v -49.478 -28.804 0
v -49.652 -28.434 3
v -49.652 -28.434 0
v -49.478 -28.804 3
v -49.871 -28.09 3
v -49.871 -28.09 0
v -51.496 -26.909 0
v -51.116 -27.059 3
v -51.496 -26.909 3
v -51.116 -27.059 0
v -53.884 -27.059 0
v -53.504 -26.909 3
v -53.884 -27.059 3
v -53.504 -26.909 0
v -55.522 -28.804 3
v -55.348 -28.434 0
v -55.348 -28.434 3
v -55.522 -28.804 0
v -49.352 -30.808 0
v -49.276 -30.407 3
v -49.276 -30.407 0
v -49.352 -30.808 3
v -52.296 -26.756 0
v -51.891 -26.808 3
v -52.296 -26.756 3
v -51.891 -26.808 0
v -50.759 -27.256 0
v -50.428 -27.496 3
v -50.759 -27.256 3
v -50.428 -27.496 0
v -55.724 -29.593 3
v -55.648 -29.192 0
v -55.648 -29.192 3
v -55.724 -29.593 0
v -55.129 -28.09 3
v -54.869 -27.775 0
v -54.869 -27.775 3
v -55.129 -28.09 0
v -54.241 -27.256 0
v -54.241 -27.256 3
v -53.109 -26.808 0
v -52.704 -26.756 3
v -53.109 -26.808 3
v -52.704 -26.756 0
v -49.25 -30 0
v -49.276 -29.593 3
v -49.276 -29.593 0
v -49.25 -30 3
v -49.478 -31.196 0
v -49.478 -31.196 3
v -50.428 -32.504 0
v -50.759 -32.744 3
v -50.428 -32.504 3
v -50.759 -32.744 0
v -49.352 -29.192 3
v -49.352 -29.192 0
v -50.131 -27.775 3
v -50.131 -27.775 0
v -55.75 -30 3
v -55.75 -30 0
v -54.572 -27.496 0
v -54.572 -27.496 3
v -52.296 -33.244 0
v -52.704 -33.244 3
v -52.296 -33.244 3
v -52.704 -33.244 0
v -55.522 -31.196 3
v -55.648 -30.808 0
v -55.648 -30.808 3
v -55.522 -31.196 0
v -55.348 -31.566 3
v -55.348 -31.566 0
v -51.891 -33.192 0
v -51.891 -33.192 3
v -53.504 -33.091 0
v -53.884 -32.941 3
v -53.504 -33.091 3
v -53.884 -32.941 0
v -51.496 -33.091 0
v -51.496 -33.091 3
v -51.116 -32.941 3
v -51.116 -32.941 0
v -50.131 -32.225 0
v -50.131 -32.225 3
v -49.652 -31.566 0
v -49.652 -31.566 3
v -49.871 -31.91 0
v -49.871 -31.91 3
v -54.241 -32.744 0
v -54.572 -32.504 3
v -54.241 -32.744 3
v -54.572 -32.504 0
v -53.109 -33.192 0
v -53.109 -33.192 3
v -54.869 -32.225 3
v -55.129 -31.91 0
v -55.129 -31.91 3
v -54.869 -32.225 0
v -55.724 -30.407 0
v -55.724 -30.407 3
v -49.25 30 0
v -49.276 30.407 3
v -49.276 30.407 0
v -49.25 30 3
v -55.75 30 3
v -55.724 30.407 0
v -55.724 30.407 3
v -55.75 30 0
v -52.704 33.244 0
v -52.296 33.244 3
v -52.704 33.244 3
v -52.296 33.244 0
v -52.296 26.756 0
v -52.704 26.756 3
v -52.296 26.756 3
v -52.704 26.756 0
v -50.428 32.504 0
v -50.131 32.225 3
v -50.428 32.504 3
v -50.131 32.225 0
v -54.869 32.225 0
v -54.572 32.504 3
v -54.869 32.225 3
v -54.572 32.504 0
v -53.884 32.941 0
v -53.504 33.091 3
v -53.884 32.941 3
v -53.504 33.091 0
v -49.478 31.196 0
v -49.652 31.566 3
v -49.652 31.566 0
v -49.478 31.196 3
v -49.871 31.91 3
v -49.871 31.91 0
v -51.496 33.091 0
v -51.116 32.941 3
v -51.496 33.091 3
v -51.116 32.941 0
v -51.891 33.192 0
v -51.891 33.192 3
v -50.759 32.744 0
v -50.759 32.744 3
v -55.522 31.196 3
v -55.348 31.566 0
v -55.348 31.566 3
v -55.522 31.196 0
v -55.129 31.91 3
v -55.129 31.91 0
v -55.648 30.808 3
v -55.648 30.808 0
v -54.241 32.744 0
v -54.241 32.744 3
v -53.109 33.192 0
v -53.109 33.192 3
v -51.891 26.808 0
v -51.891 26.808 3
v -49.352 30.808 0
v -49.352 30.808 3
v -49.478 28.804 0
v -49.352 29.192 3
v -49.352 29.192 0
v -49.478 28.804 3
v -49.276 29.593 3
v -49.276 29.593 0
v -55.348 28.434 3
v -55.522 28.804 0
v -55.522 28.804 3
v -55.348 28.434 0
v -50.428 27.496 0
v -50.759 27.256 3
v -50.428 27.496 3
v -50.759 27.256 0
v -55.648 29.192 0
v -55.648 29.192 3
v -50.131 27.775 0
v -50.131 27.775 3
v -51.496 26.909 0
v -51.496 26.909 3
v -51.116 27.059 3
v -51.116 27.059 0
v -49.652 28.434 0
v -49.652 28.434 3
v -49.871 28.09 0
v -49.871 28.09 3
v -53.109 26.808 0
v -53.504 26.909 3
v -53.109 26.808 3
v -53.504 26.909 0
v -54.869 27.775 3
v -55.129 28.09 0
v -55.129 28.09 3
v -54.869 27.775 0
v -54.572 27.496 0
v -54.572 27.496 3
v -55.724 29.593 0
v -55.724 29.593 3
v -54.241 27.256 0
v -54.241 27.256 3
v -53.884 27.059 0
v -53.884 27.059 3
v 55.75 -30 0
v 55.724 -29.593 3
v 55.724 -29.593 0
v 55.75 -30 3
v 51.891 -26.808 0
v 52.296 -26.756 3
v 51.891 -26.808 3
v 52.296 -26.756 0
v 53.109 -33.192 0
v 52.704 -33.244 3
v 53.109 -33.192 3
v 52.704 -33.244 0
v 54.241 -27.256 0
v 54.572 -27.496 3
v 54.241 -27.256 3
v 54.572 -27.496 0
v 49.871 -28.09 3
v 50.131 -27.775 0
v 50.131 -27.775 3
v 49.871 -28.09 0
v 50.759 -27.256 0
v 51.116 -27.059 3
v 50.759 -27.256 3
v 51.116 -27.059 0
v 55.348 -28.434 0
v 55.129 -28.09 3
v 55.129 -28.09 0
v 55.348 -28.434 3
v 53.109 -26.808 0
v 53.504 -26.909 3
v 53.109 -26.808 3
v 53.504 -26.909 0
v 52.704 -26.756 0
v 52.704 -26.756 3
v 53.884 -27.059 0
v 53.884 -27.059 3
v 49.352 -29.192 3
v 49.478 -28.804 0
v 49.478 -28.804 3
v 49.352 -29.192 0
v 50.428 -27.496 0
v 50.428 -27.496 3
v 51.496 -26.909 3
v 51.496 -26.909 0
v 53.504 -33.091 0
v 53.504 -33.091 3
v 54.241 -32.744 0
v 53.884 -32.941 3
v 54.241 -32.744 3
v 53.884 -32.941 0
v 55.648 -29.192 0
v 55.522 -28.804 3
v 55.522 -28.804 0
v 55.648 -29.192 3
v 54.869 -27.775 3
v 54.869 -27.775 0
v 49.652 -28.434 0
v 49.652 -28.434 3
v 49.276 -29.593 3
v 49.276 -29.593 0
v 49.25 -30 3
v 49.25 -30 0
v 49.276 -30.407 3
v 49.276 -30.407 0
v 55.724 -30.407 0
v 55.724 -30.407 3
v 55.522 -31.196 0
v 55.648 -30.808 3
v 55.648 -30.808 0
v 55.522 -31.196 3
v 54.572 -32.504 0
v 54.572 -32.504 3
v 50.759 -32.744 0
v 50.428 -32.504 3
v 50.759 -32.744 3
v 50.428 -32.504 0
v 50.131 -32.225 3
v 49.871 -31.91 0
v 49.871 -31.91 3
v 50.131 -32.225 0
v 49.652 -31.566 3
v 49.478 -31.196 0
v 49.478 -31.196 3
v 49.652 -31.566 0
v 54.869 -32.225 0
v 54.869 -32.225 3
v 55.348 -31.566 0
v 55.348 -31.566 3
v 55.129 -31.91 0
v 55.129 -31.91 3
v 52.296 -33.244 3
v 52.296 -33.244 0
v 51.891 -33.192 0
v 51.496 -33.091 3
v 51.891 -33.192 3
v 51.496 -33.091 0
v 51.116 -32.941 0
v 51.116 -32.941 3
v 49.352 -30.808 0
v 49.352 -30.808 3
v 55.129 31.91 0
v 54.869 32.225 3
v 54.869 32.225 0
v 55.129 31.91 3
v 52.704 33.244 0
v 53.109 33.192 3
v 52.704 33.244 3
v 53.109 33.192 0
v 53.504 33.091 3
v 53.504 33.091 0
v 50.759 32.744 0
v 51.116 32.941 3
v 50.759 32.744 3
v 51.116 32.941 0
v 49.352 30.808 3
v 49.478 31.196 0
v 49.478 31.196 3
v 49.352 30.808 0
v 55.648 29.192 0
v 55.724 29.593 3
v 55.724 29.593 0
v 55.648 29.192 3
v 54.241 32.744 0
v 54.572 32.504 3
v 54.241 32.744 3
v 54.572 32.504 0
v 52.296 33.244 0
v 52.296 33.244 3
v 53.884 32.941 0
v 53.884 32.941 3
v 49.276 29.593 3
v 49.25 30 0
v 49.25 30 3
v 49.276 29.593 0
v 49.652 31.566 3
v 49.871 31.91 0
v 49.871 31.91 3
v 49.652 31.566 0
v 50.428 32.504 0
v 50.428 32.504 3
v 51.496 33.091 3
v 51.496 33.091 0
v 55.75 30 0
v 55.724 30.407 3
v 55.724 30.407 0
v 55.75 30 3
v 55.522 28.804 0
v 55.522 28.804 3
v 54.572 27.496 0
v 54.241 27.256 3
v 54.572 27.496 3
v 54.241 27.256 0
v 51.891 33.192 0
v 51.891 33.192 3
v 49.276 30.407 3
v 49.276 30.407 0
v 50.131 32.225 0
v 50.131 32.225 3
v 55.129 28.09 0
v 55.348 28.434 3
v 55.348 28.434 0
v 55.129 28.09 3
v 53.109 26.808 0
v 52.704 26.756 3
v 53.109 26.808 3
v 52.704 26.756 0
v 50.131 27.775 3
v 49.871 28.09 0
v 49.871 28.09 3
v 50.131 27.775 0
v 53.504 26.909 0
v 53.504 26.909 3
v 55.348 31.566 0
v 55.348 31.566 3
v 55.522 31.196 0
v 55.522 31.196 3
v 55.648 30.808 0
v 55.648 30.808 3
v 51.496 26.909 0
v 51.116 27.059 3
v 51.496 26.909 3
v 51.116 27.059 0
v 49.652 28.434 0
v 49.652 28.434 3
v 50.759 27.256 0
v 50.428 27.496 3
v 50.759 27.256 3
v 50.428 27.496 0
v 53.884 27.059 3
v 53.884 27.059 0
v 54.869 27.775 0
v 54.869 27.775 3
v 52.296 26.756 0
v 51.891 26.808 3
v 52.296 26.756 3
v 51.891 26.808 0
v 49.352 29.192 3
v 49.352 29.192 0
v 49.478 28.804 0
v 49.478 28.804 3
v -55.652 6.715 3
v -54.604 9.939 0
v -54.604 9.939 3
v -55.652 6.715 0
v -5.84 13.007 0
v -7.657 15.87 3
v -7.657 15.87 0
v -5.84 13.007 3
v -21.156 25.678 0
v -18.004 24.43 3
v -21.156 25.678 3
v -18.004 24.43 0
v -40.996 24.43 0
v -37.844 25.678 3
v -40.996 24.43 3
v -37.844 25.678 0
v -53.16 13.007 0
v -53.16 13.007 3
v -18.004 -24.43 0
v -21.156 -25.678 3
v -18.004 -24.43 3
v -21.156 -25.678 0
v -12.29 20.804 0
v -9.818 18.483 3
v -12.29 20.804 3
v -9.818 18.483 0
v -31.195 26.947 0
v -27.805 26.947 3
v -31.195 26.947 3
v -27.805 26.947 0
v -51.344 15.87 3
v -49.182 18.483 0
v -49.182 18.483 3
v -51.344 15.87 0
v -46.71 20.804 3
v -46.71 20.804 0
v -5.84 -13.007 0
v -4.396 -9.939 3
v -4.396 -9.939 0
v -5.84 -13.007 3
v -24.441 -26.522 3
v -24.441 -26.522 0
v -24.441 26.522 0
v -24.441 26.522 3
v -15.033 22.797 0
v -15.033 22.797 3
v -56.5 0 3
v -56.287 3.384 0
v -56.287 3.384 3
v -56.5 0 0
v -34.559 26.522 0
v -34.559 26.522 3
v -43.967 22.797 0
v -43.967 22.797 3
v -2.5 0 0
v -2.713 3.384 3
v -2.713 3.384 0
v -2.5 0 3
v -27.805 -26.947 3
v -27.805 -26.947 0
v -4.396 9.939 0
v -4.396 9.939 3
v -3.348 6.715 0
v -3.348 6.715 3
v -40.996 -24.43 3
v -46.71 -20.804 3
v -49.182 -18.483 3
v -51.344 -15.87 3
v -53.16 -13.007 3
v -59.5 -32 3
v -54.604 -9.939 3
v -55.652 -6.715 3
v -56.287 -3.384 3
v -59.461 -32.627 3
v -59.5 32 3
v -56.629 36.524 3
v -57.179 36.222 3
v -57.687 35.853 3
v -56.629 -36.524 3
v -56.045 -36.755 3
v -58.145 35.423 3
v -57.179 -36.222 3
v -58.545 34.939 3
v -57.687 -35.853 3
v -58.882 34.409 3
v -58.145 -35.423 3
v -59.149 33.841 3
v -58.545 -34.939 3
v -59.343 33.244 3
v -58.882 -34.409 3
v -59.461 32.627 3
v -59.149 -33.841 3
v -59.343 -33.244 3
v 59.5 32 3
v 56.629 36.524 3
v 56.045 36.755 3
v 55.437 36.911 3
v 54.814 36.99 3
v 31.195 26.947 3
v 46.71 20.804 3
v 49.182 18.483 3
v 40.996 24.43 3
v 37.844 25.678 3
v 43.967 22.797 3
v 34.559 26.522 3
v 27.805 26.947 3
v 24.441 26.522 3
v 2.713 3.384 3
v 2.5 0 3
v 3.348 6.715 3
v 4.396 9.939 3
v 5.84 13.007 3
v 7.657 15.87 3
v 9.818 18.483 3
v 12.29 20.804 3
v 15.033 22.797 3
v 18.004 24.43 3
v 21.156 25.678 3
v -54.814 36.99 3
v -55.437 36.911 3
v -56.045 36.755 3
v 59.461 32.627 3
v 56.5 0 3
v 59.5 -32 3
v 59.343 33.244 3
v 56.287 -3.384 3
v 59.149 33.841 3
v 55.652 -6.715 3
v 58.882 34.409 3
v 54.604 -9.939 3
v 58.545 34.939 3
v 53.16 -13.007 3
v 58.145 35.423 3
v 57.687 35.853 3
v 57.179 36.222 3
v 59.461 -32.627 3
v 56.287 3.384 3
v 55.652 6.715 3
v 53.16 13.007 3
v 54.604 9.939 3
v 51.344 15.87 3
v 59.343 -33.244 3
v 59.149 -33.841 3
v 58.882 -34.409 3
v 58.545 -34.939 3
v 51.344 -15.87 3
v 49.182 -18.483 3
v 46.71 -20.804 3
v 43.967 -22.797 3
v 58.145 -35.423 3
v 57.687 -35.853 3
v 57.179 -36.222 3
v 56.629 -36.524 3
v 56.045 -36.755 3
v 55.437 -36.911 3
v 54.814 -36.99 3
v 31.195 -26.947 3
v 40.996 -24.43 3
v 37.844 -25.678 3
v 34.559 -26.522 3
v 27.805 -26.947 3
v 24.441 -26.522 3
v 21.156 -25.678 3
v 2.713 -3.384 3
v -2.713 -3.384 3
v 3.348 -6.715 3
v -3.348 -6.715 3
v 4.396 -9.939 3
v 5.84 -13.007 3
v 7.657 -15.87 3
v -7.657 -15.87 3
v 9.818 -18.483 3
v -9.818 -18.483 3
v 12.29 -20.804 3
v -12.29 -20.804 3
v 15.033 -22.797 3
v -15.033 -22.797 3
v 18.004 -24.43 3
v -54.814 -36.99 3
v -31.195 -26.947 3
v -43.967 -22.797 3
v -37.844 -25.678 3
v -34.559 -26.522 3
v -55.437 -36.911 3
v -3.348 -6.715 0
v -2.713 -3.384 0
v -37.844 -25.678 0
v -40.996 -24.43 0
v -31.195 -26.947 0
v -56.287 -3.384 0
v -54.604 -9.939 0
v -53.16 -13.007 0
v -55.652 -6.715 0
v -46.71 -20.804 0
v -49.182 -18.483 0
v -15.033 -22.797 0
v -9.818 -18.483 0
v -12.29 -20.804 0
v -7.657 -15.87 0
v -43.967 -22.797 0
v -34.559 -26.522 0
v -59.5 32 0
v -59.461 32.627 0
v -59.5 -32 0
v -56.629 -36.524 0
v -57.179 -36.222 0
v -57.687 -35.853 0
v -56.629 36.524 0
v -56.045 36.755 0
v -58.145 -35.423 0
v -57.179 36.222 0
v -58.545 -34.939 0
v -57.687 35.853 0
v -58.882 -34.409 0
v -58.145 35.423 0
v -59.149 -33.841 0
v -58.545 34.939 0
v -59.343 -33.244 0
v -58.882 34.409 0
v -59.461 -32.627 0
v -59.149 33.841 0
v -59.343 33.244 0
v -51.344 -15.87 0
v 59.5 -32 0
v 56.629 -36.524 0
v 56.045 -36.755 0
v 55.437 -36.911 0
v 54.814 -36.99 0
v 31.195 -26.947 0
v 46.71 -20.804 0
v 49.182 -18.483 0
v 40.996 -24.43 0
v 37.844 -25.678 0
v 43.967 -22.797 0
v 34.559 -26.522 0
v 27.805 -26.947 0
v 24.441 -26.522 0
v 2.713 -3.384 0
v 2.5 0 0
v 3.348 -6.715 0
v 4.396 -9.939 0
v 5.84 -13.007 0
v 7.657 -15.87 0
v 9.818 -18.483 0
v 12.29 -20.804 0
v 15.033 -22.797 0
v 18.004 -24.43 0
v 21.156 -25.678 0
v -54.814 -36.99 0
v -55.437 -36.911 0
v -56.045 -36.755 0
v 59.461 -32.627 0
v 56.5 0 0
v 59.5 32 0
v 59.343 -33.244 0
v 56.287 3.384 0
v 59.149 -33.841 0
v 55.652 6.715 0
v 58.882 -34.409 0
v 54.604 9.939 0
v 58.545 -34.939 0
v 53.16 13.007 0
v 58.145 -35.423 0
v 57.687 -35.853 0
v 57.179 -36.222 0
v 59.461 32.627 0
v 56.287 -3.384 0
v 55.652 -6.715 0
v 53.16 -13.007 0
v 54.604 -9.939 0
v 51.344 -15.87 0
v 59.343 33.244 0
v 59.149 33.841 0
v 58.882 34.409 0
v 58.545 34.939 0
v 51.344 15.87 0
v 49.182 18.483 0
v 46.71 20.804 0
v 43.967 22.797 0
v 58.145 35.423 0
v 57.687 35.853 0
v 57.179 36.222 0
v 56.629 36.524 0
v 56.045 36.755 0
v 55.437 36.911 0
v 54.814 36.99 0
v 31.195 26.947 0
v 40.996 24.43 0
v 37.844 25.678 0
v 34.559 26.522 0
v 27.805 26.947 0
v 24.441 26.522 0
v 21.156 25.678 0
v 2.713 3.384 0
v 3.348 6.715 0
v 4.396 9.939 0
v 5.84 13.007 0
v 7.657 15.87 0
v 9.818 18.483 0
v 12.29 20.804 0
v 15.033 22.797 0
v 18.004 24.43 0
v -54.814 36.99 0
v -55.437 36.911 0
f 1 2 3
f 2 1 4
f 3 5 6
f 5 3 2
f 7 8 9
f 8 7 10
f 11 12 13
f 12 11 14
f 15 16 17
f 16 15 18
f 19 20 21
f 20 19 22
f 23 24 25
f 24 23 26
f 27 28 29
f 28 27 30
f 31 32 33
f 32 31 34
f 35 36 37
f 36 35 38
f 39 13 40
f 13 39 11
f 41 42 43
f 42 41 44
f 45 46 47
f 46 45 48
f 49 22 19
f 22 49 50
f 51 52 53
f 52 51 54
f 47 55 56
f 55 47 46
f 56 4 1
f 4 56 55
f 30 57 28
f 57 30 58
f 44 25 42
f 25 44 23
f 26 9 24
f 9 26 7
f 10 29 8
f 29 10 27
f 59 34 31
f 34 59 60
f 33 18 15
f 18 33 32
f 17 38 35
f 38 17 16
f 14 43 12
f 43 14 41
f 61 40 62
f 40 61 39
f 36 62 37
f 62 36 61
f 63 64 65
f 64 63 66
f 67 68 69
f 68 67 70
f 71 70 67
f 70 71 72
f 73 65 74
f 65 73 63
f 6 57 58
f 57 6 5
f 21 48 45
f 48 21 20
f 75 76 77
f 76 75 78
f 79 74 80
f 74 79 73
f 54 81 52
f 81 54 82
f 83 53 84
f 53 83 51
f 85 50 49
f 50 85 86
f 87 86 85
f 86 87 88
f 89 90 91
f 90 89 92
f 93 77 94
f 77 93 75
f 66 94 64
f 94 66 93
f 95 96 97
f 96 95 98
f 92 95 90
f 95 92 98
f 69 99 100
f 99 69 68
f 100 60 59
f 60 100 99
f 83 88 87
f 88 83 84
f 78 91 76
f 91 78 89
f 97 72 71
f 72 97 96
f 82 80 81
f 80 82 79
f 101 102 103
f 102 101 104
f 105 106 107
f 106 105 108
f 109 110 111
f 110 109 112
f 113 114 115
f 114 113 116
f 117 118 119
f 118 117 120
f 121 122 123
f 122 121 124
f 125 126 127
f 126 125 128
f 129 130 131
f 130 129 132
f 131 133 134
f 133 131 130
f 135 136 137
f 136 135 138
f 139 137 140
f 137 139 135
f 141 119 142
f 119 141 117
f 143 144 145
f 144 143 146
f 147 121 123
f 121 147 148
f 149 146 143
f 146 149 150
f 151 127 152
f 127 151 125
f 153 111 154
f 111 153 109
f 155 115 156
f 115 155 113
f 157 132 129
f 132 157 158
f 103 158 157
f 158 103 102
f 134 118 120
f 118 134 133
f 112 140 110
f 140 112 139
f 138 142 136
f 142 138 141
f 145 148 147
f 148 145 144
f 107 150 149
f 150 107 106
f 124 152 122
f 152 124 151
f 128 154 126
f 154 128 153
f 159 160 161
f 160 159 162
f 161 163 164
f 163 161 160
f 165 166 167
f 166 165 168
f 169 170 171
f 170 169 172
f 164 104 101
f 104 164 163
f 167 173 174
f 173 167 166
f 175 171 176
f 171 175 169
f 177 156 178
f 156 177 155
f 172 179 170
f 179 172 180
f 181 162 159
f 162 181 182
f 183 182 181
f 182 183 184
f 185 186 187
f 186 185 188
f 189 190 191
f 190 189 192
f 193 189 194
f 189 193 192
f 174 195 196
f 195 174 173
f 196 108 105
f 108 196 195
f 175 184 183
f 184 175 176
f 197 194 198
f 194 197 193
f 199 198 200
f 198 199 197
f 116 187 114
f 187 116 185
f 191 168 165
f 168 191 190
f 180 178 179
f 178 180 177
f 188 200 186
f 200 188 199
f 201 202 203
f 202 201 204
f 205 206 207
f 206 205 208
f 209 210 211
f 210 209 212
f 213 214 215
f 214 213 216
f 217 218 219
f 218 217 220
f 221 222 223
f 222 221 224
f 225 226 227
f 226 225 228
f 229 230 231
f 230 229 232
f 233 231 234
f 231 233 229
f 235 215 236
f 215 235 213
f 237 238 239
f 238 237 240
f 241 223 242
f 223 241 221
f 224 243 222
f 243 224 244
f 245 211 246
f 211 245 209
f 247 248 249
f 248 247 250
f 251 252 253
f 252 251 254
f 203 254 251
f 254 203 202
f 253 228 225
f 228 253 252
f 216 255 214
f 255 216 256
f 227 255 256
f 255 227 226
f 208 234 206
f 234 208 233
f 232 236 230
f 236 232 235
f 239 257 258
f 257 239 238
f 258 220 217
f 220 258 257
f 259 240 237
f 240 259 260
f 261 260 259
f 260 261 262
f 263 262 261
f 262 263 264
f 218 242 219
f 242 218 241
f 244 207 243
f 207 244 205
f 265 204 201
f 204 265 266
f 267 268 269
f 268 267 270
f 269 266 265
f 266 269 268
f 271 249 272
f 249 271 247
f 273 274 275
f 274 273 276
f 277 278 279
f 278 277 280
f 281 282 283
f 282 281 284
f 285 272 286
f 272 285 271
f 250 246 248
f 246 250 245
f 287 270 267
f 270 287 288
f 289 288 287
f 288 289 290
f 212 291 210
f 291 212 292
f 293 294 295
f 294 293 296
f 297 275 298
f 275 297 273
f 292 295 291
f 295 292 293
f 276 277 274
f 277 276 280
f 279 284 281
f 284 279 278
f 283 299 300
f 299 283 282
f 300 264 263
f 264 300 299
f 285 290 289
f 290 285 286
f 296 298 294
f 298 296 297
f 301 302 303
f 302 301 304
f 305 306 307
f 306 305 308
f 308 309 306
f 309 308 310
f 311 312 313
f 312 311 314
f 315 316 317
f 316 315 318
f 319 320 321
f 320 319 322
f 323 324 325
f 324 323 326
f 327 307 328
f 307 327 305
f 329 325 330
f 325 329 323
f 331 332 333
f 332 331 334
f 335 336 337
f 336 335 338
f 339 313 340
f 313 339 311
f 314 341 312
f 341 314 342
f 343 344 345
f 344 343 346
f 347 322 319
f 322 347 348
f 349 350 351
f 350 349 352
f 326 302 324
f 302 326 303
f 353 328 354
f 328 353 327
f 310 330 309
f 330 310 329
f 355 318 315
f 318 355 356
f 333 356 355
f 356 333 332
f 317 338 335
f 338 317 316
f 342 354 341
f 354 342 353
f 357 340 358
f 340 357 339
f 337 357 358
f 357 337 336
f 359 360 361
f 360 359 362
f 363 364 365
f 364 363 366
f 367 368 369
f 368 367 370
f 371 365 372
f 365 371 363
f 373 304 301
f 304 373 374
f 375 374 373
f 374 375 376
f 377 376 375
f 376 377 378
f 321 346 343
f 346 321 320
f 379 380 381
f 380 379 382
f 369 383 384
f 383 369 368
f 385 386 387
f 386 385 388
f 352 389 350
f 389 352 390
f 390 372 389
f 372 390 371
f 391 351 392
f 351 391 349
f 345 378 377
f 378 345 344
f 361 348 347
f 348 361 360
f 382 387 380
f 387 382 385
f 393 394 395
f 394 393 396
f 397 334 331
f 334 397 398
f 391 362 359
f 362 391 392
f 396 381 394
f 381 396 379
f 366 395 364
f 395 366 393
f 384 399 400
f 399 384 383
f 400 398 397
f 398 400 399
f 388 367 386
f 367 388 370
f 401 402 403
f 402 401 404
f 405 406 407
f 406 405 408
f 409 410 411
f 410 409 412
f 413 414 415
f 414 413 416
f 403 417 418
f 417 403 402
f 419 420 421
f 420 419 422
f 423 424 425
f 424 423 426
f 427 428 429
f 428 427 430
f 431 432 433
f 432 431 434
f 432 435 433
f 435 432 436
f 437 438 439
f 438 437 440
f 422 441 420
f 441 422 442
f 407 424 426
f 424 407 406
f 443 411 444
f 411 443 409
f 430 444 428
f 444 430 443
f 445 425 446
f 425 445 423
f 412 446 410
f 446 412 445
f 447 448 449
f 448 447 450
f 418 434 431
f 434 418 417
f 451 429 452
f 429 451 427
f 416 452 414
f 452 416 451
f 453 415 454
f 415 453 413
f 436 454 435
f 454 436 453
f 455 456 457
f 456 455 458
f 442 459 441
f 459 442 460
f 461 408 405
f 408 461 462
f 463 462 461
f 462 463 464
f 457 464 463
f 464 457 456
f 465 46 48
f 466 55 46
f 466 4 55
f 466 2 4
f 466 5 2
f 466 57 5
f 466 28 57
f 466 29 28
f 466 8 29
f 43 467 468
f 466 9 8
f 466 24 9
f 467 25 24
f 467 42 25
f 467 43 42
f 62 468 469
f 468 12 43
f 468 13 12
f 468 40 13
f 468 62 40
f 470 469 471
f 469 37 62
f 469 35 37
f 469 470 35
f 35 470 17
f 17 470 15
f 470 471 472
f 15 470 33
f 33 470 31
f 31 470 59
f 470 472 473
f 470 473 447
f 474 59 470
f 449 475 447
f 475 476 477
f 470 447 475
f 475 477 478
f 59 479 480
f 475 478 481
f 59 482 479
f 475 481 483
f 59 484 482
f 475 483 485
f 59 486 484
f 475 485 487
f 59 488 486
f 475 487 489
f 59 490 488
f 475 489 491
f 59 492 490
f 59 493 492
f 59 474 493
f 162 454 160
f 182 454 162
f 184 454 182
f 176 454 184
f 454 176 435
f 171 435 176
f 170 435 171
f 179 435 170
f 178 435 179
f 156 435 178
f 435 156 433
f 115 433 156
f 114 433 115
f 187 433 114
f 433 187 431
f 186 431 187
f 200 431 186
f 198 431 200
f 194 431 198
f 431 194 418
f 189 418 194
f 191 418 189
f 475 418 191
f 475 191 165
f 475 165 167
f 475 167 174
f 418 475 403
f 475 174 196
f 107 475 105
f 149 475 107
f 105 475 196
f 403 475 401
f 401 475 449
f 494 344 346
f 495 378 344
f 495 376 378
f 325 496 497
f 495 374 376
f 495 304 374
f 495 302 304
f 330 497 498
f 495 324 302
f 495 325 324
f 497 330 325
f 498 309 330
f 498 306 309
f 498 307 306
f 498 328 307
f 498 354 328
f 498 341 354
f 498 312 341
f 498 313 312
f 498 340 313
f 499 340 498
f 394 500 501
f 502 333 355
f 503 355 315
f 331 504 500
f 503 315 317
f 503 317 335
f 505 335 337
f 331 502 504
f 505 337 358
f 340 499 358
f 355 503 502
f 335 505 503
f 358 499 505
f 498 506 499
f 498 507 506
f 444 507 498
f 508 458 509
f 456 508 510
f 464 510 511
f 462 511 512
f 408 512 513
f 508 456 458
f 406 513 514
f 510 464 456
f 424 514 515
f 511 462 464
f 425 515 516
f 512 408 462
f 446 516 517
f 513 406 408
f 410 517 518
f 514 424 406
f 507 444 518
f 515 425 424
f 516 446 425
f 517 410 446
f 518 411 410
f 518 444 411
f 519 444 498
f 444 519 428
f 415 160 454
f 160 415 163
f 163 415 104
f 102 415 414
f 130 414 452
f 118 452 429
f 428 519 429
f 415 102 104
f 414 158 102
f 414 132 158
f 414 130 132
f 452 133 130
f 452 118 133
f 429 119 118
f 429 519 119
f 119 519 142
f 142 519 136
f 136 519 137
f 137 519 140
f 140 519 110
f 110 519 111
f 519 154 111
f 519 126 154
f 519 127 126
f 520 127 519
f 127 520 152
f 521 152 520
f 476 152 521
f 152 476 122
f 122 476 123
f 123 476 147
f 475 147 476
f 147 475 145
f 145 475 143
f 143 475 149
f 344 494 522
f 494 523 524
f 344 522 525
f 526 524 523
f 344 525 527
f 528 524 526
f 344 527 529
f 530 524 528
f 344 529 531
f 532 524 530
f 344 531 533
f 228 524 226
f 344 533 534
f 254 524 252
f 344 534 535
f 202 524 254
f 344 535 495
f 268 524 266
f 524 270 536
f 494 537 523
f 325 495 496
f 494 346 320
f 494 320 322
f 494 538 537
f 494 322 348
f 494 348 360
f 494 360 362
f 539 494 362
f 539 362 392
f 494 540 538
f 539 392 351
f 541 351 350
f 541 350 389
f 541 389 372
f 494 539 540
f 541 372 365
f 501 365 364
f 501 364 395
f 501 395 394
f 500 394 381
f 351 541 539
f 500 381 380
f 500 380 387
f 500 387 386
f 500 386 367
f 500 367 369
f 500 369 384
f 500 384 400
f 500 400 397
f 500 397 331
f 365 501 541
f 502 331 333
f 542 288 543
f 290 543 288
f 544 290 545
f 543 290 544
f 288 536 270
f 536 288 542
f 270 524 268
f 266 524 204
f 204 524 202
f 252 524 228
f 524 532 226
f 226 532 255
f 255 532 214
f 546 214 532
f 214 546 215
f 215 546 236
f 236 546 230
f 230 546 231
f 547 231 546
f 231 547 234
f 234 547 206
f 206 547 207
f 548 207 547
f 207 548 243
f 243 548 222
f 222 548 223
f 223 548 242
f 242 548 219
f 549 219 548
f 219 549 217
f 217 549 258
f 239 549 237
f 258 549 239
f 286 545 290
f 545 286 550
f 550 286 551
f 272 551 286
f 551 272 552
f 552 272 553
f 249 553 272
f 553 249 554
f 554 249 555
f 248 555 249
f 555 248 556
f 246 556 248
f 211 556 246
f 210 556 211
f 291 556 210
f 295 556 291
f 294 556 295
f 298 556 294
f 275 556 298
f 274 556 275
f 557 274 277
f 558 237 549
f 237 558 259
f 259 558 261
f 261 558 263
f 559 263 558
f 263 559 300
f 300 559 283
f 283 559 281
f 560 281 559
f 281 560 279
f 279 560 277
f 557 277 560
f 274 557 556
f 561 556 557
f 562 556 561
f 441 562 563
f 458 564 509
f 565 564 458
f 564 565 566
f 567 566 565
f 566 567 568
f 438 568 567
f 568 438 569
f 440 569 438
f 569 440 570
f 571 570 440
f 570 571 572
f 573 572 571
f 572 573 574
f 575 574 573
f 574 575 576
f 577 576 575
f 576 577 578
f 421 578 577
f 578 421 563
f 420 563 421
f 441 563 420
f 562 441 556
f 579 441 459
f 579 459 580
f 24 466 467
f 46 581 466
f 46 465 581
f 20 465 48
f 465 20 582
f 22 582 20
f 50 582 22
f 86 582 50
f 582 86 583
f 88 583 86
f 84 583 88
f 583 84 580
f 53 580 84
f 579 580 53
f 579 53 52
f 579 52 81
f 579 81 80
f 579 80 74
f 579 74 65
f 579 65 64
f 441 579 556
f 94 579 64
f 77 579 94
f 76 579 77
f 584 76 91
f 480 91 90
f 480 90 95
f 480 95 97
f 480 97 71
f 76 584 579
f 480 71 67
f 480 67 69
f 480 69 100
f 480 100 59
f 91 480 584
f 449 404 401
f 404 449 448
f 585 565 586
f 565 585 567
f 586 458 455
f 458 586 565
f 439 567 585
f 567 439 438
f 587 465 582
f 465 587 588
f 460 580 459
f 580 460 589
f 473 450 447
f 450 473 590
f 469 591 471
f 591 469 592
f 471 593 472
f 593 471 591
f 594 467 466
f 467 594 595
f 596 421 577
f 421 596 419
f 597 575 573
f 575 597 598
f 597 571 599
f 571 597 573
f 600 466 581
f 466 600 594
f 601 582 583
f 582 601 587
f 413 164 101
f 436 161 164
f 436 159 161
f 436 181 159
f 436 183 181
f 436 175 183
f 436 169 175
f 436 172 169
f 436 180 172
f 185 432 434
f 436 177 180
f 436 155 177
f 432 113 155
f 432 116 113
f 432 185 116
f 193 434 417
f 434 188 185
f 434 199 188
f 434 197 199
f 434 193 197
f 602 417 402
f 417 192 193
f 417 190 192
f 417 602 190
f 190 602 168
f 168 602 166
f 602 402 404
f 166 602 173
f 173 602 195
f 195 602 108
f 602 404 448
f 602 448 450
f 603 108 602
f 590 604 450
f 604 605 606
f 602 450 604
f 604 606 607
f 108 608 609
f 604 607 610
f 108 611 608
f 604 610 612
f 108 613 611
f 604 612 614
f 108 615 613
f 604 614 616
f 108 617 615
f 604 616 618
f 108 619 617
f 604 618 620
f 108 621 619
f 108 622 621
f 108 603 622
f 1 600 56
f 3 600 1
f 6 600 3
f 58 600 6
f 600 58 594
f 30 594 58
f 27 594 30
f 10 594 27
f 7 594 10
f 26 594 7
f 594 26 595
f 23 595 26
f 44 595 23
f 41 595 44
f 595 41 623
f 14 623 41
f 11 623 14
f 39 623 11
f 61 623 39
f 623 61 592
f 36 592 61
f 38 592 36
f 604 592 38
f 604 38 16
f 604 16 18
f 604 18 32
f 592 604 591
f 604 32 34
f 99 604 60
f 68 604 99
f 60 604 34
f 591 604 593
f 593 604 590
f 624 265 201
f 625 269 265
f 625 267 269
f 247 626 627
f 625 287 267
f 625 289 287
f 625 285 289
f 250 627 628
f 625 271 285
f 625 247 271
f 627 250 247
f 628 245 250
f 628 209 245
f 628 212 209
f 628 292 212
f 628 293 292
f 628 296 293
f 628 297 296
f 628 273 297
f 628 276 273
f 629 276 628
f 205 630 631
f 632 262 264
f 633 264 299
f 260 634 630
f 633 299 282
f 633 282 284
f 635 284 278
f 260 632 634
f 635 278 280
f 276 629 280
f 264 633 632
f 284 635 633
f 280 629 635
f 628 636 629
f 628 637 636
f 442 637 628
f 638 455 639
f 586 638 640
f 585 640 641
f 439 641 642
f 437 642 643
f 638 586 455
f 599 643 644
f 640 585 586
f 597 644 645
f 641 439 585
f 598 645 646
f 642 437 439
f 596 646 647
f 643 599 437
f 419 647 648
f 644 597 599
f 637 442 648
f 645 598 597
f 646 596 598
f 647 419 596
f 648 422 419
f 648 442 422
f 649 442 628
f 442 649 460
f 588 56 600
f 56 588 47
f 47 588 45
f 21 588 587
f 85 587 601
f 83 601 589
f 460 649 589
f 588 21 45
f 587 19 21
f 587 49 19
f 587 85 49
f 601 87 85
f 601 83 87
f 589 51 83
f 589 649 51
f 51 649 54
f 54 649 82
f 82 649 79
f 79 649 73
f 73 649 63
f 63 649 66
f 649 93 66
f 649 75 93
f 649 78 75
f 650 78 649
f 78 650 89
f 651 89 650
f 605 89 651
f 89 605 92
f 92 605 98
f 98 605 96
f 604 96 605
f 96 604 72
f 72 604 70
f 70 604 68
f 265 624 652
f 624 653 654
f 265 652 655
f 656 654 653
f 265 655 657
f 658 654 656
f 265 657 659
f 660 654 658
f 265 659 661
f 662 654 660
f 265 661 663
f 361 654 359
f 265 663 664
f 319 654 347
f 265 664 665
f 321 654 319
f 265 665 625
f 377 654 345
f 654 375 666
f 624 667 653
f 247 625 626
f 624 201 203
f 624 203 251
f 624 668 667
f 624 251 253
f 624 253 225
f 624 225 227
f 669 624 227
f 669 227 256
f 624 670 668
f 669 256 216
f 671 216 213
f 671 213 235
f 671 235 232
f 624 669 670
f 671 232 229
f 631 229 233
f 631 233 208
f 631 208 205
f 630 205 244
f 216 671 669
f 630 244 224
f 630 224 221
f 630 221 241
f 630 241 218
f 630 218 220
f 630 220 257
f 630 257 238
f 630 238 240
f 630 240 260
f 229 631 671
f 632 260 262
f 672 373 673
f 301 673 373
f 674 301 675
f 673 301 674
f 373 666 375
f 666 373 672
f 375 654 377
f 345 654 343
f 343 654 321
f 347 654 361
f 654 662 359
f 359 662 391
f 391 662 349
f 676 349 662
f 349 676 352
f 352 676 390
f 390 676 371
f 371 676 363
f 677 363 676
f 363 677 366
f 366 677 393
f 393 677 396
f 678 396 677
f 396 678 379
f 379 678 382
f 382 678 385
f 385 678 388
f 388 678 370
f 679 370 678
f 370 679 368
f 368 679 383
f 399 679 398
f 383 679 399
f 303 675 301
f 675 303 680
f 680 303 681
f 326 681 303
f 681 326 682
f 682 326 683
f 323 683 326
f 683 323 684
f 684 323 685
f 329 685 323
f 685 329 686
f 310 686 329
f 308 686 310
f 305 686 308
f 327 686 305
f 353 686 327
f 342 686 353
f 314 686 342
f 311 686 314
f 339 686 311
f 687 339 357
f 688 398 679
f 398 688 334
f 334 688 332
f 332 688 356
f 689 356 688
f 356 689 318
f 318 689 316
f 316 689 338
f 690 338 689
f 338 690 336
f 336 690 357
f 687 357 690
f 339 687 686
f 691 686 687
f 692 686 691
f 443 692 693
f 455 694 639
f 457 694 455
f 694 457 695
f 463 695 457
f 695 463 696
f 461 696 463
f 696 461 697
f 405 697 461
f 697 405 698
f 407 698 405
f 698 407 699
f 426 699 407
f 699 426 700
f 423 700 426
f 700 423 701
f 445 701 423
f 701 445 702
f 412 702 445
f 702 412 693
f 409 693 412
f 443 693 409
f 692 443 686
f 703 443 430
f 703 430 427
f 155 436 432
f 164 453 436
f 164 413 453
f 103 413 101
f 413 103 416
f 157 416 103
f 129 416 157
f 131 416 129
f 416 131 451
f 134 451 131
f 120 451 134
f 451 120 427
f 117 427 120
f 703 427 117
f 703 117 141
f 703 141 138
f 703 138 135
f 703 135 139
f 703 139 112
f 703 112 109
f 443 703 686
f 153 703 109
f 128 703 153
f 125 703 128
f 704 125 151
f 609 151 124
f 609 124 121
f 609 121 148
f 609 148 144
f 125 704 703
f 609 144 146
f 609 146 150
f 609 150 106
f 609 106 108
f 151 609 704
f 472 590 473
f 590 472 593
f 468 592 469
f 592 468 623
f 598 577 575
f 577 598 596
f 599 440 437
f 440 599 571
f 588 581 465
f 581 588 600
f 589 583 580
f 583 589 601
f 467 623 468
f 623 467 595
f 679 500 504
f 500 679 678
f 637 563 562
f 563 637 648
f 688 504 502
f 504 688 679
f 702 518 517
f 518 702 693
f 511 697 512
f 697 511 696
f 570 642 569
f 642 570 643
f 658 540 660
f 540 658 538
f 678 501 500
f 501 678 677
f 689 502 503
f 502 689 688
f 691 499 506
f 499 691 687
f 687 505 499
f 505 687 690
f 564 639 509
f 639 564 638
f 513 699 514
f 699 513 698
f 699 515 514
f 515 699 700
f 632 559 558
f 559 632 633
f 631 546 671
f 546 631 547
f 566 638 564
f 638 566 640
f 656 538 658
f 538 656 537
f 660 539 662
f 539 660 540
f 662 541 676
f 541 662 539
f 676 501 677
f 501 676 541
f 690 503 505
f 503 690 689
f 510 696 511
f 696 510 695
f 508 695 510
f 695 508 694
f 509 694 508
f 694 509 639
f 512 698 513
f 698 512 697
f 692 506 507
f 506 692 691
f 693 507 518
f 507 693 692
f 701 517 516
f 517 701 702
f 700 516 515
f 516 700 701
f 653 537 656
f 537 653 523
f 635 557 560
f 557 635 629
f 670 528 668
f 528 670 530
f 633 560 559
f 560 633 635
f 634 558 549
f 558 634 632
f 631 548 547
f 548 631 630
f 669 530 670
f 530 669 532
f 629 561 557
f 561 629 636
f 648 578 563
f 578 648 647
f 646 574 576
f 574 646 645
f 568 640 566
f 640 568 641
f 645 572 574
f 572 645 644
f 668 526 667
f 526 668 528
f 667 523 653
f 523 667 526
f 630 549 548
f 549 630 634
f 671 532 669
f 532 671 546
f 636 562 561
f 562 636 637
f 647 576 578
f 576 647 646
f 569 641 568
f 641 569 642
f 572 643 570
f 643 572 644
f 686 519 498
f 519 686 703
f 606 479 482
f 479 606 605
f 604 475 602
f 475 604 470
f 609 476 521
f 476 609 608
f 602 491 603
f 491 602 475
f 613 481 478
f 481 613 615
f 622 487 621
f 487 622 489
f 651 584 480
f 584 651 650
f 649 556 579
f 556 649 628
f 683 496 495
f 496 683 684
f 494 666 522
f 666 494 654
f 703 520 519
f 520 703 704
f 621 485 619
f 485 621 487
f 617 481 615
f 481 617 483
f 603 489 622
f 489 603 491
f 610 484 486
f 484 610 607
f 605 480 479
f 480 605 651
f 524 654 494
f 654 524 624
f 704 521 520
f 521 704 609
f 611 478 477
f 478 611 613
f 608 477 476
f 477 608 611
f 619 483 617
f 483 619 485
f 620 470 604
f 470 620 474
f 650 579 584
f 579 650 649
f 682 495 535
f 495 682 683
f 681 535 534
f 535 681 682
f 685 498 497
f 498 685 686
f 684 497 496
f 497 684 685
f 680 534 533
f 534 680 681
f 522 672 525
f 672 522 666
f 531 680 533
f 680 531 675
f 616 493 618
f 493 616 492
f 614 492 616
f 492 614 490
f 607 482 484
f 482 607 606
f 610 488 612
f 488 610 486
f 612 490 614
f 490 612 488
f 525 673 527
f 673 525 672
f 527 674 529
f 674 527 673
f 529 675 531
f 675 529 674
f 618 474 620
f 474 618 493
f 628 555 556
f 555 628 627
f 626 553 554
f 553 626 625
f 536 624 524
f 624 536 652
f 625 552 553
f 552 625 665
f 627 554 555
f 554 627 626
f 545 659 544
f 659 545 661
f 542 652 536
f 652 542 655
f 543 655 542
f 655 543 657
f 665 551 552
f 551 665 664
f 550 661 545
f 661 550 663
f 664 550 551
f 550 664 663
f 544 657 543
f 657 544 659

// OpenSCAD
$fn = 50;


difference() {
	union() {
		hull() {
			translate(v = [-54.5000000000, 32.0000000000, 0]) {
				cylinder(h = 3, r = 5);
			}
			translate(v = [54.5000000000, 32.0000000000, 0]) {
				cylinder(h = 3, r = 5);
			}
			translate(v = [-54.5000000000, -32.0000000000, 0]) {
				cylinder(h = 3, r = 5);
			}
			translate(v = [54.5000000000, -32.0000000000, 0]) {
				cylinder(h = 3, r = 5);
			}
		}
	}
	union() {
		#translate(v = [-52.5000000000, -30.0000000000, -100.0000000000]) {
			cylinder(h = 200, r = 3.2500000000);
		}
		#translate(v = [-52.5000000000, 30.0000000000, -100.0000000000]) {
			cylinder(h = 200, r = 3.2500000000);
		}
		#translate(v = [52.5000000000, -30.0000000000, -100.0000000000]) {
			cylinder(h = 200, r = 3.2500000000);
		}
		#translate(v = [52.5000000000, 30.0000000000, -100.0000000000]) {
			cylinder(h = 200, r = 3.2500000000);
		}
		#translate(v = [-29.5000000000, 0, 0]) {
			cylinder(h = 3, r = 27.0000000000);
		}
		#translate(v = [29.5000000000, 0, 0]) {
			cylinder(h = 3, r = 27.0000000000);
		}
	}
}
